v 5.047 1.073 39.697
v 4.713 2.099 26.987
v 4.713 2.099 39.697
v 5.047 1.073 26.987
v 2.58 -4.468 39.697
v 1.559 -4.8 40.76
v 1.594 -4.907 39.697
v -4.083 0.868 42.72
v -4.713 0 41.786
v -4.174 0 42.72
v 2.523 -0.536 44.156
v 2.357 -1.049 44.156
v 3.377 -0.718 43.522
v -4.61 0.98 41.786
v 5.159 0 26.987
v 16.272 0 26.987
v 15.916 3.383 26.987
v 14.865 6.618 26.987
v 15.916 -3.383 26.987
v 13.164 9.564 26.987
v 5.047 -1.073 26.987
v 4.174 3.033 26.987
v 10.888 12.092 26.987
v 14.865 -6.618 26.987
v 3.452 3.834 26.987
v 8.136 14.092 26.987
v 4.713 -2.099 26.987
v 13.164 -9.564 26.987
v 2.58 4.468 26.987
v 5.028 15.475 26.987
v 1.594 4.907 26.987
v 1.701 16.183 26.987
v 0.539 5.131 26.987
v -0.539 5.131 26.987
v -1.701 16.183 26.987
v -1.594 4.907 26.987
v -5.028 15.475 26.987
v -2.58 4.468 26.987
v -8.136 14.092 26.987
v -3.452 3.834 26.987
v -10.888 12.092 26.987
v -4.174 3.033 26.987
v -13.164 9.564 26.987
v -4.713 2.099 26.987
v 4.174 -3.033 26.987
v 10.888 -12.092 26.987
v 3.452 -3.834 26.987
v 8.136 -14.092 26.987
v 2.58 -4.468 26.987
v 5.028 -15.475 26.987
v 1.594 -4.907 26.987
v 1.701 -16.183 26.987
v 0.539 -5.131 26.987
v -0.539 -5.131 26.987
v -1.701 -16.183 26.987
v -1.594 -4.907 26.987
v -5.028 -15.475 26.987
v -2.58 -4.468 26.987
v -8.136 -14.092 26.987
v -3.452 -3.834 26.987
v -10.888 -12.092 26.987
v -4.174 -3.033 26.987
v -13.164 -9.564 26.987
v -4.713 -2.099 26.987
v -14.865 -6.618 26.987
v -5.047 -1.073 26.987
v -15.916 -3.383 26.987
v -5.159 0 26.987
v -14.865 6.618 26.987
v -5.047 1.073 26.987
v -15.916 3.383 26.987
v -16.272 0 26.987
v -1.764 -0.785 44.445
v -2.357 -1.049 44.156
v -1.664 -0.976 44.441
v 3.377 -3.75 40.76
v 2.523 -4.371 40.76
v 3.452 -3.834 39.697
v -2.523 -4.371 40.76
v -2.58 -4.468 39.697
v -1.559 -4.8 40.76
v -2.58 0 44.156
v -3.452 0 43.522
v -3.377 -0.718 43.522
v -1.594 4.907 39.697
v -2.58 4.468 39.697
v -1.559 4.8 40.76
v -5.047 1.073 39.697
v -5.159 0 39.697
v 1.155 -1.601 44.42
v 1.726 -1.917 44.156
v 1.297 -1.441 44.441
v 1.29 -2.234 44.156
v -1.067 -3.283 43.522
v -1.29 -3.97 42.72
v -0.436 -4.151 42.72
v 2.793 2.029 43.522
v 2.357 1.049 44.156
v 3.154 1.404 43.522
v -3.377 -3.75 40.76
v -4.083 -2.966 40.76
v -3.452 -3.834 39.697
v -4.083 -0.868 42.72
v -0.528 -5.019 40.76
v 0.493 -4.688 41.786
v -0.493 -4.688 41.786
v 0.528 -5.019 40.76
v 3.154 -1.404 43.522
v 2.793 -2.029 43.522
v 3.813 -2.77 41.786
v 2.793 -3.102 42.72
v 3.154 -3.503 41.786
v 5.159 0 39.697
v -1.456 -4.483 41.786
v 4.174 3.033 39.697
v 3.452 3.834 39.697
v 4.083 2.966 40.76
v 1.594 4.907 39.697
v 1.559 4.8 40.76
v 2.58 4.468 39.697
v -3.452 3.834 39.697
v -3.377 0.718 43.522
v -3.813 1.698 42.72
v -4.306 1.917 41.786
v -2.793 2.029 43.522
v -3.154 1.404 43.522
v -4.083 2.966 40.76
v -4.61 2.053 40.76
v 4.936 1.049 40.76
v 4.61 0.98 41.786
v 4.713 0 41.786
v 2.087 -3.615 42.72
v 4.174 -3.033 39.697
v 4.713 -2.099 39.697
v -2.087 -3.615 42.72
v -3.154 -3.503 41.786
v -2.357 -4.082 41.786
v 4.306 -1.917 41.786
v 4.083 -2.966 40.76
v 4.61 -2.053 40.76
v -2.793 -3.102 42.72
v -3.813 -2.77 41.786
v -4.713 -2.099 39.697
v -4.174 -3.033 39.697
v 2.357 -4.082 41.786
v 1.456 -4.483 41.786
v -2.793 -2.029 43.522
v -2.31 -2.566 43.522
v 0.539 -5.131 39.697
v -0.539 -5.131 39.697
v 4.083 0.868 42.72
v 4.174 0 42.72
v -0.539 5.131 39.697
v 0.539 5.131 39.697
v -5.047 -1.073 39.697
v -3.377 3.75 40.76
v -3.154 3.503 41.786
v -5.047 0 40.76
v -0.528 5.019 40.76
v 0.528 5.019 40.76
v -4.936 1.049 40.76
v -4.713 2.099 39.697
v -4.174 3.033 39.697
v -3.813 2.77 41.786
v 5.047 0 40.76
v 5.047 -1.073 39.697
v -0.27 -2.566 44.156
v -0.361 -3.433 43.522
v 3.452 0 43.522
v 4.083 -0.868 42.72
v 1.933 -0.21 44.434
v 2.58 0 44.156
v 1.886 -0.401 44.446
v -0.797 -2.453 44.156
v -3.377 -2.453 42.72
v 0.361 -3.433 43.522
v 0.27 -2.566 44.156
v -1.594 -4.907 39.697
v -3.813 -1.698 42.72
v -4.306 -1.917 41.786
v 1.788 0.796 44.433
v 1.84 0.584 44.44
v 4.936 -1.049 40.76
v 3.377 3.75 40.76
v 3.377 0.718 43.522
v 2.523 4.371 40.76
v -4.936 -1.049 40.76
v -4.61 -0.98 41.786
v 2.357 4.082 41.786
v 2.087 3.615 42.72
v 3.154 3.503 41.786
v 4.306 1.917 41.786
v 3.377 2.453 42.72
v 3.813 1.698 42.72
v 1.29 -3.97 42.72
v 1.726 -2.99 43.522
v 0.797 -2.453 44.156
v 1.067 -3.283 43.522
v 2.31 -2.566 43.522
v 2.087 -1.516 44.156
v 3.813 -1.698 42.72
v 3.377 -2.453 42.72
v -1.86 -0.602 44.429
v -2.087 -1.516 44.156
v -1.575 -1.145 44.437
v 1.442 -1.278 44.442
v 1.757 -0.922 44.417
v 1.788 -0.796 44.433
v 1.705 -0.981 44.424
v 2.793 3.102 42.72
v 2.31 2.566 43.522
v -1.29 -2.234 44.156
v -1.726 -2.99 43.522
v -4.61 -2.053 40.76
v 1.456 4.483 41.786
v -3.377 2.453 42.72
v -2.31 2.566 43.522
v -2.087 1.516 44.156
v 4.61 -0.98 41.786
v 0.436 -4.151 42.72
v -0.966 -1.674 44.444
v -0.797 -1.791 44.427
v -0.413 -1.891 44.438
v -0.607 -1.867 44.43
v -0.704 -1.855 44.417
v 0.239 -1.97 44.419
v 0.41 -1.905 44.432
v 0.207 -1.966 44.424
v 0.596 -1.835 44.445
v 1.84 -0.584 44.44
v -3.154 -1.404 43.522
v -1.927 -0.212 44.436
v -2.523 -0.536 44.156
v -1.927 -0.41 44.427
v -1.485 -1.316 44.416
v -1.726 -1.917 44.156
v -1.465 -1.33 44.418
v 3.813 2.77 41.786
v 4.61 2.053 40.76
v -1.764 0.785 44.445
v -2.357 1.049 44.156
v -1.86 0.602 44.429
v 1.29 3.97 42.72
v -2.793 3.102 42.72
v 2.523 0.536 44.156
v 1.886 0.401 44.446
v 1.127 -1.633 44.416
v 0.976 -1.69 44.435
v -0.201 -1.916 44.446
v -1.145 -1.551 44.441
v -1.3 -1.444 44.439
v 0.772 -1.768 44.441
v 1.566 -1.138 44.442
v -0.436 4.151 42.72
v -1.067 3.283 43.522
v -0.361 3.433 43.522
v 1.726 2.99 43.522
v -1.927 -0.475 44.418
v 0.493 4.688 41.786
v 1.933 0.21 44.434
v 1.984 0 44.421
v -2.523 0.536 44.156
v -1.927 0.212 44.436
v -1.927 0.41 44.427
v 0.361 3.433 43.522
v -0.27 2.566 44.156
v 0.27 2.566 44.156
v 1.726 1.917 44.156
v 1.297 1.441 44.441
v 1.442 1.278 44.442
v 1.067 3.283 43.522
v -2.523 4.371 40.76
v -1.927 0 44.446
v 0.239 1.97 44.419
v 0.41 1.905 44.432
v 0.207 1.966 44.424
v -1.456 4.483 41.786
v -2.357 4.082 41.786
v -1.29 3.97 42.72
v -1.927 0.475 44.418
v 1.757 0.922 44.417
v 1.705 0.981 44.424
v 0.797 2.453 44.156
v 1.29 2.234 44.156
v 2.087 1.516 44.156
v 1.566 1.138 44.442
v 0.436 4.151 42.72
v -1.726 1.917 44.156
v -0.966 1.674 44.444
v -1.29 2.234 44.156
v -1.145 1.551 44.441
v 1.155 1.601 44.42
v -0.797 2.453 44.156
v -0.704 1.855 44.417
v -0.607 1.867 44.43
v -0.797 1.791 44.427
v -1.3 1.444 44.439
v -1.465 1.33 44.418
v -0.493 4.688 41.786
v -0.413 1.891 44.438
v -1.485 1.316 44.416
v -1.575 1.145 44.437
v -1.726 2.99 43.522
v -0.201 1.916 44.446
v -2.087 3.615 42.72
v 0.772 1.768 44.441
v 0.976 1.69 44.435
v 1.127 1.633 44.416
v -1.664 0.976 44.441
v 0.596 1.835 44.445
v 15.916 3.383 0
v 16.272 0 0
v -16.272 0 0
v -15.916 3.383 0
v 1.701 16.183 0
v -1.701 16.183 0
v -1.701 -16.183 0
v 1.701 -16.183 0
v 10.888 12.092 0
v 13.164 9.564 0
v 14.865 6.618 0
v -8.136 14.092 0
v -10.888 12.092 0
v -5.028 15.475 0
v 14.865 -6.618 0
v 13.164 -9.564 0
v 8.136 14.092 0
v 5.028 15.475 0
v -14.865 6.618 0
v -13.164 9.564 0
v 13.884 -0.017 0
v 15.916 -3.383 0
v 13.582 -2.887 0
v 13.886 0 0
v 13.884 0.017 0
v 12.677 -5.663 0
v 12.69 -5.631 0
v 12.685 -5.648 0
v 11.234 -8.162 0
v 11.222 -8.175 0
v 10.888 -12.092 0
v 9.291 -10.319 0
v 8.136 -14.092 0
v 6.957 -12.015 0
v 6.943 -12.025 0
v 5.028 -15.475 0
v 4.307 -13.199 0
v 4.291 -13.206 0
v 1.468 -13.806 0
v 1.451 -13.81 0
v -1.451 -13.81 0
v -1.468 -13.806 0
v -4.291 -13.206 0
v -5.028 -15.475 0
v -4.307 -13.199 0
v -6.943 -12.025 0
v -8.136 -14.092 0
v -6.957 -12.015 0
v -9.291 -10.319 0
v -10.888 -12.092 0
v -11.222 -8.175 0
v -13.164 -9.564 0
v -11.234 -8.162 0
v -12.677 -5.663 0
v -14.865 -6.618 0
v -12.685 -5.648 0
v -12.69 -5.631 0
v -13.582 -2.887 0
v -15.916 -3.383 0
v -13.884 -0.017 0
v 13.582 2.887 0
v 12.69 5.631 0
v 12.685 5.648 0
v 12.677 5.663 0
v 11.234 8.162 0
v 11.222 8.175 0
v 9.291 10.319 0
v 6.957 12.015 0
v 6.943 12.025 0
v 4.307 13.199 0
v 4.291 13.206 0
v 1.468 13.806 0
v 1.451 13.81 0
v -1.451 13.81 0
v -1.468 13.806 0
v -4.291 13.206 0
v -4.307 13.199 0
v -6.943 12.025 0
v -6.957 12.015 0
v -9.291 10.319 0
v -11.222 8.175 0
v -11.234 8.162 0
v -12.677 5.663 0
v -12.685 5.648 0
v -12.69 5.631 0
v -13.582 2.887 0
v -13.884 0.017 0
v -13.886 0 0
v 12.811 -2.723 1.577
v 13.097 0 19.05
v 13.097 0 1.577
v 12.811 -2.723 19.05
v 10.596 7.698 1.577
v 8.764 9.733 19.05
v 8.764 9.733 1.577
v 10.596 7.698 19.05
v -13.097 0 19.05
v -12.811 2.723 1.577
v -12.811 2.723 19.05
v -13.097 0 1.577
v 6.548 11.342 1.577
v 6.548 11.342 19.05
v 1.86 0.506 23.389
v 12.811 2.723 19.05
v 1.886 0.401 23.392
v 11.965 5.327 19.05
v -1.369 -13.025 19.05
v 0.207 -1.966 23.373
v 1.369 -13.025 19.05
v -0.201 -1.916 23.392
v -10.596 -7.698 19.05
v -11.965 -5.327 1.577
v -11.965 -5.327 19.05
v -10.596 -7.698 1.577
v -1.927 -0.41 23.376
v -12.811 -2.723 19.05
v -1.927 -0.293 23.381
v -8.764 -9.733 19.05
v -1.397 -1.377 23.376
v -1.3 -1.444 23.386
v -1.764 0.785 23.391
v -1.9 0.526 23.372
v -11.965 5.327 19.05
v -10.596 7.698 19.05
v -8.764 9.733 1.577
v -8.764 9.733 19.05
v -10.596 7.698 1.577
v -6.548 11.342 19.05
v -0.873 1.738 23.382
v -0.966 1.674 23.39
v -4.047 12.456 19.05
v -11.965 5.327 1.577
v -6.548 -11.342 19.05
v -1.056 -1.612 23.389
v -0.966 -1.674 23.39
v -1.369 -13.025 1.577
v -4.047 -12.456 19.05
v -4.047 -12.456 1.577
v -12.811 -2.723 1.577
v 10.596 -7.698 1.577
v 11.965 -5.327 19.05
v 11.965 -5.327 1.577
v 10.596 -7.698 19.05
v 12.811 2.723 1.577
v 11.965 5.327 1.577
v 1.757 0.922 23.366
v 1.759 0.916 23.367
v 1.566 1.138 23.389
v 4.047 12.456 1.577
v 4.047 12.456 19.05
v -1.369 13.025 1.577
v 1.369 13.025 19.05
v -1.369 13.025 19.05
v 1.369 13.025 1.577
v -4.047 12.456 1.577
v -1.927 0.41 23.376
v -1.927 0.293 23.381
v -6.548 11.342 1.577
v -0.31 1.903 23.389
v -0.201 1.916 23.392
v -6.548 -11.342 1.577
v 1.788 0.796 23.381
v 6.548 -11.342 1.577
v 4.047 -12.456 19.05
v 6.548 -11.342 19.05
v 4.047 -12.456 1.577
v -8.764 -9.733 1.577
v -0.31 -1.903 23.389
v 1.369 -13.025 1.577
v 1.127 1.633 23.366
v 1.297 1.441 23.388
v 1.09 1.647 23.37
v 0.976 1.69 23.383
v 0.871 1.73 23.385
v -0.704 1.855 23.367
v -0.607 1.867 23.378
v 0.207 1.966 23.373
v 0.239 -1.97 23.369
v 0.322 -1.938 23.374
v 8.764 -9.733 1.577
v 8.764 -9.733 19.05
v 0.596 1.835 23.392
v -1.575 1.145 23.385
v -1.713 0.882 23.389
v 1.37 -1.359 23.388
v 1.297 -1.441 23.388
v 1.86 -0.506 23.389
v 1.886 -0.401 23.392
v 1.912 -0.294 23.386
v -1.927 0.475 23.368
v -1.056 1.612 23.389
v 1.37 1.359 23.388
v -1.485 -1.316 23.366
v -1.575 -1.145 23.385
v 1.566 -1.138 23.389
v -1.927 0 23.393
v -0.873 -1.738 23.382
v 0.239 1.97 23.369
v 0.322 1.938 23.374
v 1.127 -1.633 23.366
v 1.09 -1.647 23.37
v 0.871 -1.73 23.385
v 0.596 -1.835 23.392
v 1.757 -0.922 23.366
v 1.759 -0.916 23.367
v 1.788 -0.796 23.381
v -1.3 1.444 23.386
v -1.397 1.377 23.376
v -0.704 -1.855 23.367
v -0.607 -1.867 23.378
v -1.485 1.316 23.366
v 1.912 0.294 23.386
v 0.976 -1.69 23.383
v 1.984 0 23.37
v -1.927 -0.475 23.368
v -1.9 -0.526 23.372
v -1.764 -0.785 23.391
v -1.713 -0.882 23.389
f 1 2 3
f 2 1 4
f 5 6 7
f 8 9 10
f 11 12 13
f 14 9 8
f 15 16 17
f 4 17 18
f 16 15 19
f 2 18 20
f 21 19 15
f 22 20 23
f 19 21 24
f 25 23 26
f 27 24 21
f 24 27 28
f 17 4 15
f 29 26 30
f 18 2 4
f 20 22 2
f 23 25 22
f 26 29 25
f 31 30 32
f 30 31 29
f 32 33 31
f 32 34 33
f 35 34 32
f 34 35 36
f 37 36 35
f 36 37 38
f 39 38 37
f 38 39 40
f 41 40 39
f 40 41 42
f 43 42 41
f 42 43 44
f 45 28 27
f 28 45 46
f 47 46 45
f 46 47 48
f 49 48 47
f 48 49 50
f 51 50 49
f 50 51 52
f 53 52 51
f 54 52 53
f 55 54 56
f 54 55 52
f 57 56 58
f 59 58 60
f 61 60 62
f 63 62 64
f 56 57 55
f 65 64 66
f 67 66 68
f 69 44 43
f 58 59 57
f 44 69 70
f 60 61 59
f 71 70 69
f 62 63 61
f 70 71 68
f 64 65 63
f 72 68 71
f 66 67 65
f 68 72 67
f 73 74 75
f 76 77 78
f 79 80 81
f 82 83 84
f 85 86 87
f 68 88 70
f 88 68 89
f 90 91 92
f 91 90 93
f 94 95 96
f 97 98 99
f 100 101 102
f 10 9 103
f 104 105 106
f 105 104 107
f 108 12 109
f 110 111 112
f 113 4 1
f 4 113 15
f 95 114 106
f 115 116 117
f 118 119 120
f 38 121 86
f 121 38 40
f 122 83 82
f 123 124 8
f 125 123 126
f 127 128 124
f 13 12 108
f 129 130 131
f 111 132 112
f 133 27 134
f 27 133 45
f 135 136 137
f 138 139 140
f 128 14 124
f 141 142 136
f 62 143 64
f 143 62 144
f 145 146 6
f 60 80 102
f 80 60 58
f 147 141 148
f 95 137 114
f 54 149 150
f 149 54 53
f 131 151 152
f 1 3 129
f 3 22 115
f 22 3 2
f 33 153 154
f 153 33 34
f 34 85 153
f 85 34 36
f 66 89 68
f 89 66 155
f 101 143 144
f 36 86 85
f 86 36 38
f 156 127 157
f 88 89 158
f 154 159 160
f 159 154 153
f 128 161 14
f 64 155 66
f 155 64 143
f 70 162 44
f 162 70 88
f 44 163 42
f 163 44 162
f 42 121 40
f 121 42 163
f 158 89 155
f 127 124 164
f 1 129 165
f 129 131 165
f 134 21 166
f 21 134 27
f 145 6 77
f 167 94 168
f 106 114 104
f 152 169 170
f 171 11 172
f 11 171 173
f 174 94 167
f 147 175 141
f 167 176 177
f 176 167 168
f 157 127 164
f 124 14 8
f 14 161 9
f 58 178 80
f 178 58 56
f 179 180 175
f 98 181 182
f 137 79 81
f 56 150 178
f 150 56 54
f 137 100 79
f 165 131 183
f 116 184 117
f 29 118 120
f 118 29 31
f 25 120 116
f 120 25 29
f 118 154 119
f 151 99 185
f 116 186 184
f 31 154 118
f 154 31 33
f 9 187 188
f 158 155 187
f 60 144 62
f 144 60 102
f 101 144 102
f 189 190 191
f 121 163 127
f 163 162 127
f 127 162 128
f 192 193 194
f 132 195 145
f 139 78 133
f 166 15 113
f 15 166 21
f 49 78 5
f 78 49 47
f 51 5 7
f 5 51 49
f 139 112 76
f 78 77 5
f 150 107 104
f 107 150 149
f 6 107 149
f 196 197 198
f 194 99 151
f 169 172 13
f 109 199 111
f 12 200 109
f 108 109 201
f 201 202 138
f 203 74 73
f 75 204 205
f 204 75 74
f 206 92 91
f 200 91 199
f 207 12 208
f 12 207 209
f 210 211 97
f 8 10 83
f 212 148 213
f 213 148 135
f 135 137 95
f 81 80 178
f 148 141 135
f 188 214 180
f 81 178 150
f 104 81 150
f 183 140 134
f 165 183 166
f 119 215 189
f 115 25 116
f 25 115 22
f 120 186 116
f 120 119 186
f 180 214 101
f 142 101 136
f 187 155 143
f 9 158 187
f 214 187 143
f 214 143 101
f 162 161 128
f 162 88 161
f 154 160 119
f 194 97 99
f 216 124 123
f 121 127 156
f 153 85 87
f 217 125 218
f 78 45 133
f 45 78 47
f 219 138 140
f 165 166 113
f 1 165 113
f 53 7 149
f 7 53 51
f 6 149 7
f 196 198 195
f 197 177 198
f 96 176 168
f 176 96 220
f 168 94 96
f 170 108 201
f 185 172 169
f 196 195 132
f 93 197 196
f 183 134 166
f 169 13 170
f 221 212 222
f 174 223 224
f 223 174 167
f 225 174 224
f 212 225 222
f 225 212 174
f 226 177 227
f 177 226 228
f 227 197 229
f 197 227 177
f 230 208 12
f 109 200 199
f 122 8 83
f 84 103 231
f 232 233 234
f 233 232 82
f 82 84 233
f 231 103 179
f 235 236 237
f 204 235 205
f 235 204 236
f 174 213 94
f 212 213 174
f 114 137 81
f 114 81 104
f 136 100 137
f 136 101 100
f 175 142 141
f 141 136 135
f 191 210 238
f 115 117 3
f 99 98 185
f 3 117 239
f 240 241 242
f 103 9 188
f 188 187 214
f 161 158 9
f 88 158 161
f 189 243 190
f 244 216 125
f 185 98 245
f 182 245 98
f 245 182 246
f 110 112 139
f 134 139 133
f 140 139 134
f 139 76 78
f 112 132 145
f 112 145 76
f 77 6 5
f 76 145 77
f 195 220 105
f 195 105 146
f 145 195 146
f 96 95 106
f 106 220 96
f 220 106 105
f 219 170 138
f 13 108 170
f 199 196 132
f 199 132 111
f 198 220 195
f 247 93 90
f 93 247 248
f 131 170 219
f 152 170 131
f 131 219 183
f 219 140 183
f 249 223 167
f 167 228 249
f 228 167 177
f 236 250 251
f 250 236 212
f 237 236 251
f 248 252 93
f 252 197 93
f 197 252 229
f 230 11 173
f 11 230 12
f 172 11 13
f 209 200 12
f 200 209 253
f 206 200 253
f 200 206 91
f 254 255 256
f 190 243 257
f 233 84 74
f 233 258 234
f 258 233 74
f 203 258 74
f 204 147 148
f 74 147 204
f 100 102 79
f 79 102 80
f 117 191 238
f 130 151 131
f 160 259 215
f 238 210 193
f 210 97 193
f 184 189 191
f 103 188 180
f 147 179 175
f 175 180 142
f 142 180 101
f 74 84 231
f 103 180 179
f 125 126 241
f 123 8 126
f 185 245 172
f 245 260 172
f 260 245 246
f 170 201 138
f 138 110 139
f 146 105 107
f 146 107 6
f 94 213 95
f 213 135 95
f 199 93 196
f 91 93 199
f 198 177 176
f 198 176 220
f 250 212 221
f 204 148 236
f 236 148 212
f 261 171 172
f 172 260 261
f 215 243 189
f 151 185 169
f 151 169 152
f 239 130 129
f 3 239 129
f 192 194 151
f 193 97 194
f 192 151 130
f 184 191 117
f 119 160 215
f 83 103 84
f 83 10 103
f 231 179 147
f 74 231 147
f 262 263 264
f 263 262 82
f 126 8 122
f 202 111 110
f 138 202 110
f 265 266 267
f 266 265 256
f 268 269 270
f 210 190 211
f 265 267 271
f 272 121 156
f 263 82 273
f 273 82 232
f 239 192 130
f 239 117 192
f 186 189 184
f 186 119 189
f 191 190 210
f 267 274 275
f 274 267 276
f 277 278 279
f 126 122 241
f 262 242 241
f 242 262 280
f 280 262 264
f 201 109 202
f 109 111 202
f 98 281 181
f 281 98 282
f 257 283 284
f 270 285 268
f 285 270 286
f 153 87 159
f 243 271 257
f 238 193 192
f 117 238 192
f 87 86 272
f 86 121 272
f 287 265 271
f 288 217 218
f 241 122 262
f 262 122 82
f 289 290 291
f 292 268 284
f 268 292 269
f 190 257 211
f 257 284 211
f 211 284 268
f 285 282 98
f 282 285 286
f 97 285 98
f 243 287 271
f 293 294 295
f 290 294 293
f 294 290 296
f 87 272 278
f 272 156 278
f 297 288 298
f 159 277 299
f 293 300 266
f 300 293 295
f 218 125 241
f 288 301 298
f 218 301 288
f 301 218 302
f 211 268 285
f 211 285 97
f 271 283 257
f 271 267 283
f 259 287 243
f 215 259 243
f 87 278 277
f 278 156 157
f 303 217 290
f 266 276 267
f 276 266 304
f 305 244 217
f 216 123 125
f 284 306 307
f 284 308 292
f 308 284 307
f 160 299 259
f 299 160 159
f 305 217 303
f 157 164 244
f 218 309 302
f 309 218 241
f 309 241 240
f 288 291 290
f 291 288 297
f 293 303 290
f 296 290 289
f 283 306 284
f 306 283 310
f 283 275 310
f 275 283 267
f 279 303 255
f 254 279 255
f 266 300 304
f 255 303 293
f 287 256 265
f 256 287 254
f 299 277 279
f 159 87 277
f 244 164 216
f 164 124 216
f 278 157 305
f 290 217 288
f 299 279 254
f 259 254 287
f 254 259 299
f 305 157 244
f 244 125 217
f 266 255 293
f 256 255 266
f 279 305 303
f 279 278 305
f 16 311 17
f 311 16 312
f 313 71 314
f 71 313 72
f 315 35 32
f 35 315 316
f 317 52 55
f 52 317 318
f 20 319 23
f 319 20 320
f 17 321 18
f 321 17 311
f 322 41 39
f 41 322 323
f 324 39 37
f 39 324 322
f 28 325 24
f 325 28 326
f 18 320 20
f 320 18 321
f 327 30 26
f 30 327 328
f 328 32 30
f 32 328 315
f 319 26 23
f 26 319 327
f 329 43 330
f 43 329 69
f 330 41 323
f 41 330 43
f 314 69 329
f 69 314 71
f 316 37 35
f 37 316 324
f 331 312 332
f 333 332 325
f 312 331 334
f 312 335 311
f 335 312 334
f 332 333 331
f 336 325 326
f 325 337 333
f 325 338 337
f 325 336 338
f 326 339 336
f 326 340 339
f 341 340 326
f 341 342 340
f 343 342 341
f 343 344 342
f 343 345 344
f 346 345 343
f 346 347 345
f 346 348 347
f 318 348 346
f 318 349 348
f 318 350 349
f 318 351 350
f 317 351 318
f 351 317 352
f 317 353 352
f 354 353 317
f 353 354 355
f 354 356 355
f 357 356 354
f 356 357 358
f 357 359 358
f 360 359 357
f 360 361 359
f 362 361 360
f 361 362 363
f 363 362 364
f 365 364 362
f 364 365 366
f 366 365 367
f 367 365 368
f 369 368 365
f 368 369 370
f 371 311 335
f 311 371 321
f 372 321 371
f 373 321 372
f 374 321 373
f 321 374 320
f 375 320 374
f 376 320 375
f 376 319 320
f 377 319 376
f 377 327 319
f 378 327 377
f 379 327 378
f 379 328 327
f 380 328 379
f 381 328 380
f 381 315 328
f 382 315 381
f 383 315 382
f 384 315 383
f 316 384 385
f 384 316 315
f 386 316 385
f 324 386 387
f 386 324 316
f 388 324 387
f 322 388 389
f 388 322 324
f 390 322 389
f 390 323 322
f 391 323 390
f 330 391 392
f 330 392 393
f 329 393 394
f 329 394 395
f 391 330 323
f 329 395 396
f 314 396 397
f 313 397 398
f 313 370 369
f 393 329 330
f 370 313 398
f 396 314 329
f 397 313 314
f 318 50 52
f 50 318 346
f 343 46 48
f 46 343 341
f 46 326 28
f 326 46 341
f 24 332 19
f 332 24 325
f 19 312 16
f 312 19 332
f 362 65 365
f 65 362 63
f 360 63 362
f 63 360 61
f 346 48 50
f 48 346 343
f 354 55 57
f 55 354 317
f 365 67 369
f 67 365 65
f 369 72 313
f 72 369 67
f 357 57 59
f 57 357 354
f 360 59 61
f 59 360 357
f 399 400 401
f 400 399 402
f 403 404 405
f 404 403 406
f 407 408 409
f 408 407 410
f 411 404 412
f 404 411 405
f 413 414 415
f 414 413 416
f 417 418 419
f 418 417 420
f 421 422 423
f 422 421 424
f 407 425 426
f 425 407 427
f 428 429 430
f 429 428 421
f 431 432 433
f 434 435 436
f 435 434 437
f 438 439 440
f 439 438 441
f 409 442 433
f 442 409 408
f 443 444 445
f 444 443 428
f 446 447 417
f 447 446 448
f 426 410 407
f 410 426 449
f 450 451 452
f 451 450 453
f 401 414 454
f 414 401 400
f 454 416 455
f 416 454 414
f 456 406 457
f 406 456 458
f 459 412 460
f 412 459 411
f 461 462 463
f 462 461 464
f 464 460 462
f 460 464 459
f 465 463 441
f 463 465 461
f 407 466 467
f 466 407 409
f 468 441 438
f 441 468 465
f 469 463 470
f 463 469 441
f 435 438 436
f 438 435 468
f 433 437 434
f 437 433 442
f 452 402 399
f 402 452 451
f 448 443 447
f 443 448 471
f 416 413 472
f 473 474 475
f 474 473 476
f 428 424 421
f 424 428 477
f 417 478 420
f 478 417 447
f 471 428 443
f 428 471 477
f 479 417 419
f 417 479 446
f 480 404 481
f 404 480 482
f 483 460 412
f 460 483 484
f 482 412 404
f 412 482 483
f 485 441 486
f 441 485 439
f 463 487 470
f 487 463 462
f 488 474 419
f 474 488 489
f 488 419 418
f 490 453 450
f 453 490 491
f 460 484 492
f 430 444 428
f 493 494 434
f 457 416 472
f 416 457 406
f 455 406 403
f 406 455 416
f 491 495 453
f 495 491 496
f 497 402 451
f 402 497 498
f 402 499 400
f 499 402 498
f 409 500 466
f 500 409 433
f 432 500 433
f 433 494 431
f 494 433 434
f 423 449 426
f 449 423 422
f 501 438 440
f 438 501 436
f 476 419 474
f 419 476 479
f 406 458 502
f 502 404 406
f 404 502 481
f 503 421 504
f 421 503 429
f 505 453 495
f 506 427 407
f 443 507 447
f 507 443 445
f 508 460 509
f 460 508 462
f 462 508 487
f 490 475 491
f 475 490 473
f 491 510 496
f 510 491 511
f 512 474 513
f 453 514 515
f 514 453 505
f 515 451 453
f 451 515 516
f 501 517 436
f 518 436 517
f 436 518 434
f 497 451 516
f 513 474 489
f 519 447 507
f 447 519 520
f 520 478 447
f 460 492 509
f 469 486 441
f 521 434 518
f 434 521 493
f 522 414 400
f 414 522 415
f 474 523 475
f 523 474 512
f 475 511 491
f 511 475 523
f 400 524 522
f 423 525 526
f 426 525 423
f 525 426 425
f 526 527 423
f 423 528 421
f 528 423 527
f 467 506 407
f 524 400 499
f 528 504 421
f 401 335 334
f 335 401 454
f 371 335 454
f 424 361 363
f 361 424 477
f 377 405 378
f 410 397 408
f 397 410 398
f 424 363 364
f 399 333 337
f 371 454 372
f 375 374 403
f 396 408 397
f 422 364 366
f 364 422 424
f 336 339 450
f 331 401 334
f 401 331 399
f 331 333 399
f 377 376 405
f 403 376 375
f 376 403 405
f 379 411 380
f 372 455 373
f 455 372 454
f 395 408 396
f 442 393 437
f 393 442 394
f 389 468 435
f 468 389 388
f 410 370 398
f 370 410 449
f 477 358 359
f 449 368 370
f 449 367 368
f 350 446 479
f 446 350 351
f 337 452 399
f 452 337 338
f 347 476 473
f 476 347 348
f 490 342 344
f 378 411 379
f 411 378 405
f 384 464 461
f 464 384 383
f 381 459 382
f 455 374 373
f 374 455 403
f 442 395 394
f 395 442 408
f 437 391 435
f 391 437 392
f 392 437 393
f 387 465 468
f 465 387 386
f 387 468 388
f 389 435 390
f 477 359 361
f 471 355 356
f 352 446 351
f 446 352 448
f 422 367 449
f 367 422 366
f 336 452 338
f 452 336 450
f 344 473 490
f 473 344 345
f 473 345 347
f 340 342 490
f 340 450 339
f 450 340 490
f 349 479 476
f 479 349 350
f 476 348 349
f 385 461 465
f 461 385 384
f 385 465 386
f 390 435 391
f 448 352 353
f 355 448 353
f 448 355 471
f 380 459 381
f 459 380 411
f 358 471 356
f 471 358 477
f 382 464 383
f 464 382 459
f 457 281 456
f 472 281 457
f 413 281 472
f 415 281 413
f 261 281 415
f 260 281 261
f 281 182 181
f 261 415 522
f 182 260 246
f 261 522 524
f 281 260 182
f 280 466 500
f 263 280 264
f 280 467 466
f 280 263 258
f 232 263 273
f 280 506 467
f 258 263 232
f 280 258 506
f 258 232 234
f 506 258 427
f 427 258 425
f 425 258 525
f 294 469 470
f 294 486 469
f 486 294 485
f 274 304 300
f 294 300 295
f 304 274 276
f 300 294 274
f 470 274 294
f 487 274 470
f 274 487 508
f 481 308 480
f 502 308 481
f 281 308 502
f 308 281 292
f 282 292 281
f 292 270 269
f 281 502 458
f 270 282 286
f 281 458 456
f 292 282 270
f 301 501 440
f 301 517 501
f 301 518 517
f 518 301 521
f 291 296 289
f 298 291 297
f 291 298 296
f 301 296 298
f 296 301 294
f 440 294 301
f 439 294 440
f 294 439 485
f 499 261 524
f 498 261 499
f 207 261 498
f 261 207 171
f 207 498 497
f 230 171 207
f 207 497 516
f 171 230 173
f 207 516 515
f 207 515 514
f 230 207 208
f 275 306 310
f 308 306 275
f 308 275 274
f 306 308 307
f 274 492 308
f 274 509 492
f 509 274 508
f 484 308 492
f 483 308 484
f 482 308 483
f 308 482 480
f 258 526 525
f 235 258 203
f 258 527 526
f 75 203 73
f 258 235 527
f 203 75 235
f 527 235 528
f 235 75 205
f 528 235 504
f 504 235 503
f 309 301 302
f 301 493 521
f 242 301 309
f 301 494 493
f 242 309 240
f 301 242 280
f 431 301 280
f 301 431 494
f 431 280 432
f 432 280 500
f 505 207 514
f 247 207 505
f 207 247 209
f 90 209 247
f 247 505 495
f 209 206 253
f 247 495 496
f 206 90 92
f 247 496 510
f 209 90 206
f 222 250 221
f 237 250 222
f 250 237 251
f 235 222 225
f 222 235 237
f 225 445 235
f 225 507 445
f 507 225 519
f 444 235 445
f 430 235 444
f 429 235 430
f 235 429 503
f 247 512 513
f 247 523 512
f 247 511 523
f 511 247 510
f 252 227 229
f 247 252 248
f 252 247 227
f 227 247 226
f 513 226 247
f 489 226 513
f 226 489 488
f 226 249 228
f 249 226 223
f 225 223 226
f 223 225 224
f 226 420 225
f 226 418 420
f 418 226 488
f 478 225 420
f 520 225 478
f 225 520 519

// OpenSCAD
// Countersunk Hole Jig
// A jig to align a forstner bit over an existing
// through hole.
// Main use case: to countersink 3/8 and 1/4 bolts and
// t-nuts for the climbing panels project.
// Author: JMJ

// ------- START OF PARAMETERS ---------------------
i2mm = 25.4; // inch to mm conversion

// Horizontal clearances (mm) so parts drop in easily
clearance = (1/32)*i2mm;

// Diameter of forstner bit used for countersunk hole
forstner_bit_dia = 1.0*i2mm;

// Diameter of hole that guides the bit
bit_guide_dia = 1.0*i2mm + clearance;

// Height of forstner-bit guide. This includes space for
// the spike below the bit.
bit_guide_height = 6/8*i2mm;

// Diameter of through-hole
through_hole_dia = 7/16*i2mm;

// The proxy bolt sticks out below the guide for the forstner bit and 
// sticks into the through_hole
proxy_bolt_dia = through_hole_dia - clearance;

// Height of the proxy bolt
proxy_bolt_height = 1/2 * i2mm;

// Chamfering is used for various purposes:
// - Chamfering the edge of the bolt for easy insertion into hole
// - Negative chamfering of the inner edge of the bit guide for 
//   strength
// - Chamfering the top inner edge of the bolt guide for easy
//   insertion of the bit.
chamfer_width = 1/8 * i2mm;

// Wall thickness of the guide
wall_thickness = 1/8 * i2mm;

// Hole dia for a threaded rod to strengthen the piece.
threaded_rod_dia = 1/8 * i2mm;

// -------  END OF PARAMETERS --------------------
module parameter_end(){} // End of customizer parameters

_EPS = 0.01; // for CSG

// Min arc length (for cylinders and spheres)
// This is perfectly fine for 3D printed circles of dia 1".
$fs = 1; 

total_guide_height = bit_guide_height * 1.25 + wall_thickness;


module guide_hole() {
    dia = bit_guide_dia;
    cylinder(h=bit_guide_height + _EPS, r=dia/2);
}

module hulled_guide_hole() {
    union() {
        hull(){
            guide_hole();
            translate([0, 0, bit_guide_height])
                sphere(r=bit_guide_height/4);
        }
        cylinder(h=wall_thickness/2, d1=bit_guide_dia+wall_thickness/2, d2=bit_guide_dia);
    }
}

// The unit without any holes
module guide_stock() {
    dia = bit_guide_dia + 2 * wall_thickness;
    ht = total_guide_height;
    cylinder(h=ht, r=dia/2);
}

module proxy_bolt() {
    dia = proxy_bolt_dia;
    ht = proxy_bolt_height + _EPS;
    cylinder(h=ht, r=dia/2);
}

module hulled_proxy_bolt() {
    hull(){
        proxy_bolt();
        translate([0, 0, proxy_bolt_height])
            sphere(r=proxy_bolt_dia/2);
    }
}

module threaded_rod_hole() {
    dia = threaded_rod_dia + clearance;
    ht = proxy_bolt_height + total_guide_height + 4 *_EPS;
    cylinder(h=ht, r=dia/2);
}

module combined_hole() {
    union() {
        hulled_guide_hole();
        translate([0,0, 2*wall_thickness - _EPS]) threaded_rod_hole();
    };
}

module combined_stock() {
    union() {
        translate([0, 0, total_guide_height]) {
            hulled_proxy_bolt();
        }
        guide_stock();   
    }
}

module whole_unit() {
    difference() {
        combined_stock();
        translate([0, 0, -_EPS]) combined_hole();
    }
}

whole_unit();
//combined_hole();
